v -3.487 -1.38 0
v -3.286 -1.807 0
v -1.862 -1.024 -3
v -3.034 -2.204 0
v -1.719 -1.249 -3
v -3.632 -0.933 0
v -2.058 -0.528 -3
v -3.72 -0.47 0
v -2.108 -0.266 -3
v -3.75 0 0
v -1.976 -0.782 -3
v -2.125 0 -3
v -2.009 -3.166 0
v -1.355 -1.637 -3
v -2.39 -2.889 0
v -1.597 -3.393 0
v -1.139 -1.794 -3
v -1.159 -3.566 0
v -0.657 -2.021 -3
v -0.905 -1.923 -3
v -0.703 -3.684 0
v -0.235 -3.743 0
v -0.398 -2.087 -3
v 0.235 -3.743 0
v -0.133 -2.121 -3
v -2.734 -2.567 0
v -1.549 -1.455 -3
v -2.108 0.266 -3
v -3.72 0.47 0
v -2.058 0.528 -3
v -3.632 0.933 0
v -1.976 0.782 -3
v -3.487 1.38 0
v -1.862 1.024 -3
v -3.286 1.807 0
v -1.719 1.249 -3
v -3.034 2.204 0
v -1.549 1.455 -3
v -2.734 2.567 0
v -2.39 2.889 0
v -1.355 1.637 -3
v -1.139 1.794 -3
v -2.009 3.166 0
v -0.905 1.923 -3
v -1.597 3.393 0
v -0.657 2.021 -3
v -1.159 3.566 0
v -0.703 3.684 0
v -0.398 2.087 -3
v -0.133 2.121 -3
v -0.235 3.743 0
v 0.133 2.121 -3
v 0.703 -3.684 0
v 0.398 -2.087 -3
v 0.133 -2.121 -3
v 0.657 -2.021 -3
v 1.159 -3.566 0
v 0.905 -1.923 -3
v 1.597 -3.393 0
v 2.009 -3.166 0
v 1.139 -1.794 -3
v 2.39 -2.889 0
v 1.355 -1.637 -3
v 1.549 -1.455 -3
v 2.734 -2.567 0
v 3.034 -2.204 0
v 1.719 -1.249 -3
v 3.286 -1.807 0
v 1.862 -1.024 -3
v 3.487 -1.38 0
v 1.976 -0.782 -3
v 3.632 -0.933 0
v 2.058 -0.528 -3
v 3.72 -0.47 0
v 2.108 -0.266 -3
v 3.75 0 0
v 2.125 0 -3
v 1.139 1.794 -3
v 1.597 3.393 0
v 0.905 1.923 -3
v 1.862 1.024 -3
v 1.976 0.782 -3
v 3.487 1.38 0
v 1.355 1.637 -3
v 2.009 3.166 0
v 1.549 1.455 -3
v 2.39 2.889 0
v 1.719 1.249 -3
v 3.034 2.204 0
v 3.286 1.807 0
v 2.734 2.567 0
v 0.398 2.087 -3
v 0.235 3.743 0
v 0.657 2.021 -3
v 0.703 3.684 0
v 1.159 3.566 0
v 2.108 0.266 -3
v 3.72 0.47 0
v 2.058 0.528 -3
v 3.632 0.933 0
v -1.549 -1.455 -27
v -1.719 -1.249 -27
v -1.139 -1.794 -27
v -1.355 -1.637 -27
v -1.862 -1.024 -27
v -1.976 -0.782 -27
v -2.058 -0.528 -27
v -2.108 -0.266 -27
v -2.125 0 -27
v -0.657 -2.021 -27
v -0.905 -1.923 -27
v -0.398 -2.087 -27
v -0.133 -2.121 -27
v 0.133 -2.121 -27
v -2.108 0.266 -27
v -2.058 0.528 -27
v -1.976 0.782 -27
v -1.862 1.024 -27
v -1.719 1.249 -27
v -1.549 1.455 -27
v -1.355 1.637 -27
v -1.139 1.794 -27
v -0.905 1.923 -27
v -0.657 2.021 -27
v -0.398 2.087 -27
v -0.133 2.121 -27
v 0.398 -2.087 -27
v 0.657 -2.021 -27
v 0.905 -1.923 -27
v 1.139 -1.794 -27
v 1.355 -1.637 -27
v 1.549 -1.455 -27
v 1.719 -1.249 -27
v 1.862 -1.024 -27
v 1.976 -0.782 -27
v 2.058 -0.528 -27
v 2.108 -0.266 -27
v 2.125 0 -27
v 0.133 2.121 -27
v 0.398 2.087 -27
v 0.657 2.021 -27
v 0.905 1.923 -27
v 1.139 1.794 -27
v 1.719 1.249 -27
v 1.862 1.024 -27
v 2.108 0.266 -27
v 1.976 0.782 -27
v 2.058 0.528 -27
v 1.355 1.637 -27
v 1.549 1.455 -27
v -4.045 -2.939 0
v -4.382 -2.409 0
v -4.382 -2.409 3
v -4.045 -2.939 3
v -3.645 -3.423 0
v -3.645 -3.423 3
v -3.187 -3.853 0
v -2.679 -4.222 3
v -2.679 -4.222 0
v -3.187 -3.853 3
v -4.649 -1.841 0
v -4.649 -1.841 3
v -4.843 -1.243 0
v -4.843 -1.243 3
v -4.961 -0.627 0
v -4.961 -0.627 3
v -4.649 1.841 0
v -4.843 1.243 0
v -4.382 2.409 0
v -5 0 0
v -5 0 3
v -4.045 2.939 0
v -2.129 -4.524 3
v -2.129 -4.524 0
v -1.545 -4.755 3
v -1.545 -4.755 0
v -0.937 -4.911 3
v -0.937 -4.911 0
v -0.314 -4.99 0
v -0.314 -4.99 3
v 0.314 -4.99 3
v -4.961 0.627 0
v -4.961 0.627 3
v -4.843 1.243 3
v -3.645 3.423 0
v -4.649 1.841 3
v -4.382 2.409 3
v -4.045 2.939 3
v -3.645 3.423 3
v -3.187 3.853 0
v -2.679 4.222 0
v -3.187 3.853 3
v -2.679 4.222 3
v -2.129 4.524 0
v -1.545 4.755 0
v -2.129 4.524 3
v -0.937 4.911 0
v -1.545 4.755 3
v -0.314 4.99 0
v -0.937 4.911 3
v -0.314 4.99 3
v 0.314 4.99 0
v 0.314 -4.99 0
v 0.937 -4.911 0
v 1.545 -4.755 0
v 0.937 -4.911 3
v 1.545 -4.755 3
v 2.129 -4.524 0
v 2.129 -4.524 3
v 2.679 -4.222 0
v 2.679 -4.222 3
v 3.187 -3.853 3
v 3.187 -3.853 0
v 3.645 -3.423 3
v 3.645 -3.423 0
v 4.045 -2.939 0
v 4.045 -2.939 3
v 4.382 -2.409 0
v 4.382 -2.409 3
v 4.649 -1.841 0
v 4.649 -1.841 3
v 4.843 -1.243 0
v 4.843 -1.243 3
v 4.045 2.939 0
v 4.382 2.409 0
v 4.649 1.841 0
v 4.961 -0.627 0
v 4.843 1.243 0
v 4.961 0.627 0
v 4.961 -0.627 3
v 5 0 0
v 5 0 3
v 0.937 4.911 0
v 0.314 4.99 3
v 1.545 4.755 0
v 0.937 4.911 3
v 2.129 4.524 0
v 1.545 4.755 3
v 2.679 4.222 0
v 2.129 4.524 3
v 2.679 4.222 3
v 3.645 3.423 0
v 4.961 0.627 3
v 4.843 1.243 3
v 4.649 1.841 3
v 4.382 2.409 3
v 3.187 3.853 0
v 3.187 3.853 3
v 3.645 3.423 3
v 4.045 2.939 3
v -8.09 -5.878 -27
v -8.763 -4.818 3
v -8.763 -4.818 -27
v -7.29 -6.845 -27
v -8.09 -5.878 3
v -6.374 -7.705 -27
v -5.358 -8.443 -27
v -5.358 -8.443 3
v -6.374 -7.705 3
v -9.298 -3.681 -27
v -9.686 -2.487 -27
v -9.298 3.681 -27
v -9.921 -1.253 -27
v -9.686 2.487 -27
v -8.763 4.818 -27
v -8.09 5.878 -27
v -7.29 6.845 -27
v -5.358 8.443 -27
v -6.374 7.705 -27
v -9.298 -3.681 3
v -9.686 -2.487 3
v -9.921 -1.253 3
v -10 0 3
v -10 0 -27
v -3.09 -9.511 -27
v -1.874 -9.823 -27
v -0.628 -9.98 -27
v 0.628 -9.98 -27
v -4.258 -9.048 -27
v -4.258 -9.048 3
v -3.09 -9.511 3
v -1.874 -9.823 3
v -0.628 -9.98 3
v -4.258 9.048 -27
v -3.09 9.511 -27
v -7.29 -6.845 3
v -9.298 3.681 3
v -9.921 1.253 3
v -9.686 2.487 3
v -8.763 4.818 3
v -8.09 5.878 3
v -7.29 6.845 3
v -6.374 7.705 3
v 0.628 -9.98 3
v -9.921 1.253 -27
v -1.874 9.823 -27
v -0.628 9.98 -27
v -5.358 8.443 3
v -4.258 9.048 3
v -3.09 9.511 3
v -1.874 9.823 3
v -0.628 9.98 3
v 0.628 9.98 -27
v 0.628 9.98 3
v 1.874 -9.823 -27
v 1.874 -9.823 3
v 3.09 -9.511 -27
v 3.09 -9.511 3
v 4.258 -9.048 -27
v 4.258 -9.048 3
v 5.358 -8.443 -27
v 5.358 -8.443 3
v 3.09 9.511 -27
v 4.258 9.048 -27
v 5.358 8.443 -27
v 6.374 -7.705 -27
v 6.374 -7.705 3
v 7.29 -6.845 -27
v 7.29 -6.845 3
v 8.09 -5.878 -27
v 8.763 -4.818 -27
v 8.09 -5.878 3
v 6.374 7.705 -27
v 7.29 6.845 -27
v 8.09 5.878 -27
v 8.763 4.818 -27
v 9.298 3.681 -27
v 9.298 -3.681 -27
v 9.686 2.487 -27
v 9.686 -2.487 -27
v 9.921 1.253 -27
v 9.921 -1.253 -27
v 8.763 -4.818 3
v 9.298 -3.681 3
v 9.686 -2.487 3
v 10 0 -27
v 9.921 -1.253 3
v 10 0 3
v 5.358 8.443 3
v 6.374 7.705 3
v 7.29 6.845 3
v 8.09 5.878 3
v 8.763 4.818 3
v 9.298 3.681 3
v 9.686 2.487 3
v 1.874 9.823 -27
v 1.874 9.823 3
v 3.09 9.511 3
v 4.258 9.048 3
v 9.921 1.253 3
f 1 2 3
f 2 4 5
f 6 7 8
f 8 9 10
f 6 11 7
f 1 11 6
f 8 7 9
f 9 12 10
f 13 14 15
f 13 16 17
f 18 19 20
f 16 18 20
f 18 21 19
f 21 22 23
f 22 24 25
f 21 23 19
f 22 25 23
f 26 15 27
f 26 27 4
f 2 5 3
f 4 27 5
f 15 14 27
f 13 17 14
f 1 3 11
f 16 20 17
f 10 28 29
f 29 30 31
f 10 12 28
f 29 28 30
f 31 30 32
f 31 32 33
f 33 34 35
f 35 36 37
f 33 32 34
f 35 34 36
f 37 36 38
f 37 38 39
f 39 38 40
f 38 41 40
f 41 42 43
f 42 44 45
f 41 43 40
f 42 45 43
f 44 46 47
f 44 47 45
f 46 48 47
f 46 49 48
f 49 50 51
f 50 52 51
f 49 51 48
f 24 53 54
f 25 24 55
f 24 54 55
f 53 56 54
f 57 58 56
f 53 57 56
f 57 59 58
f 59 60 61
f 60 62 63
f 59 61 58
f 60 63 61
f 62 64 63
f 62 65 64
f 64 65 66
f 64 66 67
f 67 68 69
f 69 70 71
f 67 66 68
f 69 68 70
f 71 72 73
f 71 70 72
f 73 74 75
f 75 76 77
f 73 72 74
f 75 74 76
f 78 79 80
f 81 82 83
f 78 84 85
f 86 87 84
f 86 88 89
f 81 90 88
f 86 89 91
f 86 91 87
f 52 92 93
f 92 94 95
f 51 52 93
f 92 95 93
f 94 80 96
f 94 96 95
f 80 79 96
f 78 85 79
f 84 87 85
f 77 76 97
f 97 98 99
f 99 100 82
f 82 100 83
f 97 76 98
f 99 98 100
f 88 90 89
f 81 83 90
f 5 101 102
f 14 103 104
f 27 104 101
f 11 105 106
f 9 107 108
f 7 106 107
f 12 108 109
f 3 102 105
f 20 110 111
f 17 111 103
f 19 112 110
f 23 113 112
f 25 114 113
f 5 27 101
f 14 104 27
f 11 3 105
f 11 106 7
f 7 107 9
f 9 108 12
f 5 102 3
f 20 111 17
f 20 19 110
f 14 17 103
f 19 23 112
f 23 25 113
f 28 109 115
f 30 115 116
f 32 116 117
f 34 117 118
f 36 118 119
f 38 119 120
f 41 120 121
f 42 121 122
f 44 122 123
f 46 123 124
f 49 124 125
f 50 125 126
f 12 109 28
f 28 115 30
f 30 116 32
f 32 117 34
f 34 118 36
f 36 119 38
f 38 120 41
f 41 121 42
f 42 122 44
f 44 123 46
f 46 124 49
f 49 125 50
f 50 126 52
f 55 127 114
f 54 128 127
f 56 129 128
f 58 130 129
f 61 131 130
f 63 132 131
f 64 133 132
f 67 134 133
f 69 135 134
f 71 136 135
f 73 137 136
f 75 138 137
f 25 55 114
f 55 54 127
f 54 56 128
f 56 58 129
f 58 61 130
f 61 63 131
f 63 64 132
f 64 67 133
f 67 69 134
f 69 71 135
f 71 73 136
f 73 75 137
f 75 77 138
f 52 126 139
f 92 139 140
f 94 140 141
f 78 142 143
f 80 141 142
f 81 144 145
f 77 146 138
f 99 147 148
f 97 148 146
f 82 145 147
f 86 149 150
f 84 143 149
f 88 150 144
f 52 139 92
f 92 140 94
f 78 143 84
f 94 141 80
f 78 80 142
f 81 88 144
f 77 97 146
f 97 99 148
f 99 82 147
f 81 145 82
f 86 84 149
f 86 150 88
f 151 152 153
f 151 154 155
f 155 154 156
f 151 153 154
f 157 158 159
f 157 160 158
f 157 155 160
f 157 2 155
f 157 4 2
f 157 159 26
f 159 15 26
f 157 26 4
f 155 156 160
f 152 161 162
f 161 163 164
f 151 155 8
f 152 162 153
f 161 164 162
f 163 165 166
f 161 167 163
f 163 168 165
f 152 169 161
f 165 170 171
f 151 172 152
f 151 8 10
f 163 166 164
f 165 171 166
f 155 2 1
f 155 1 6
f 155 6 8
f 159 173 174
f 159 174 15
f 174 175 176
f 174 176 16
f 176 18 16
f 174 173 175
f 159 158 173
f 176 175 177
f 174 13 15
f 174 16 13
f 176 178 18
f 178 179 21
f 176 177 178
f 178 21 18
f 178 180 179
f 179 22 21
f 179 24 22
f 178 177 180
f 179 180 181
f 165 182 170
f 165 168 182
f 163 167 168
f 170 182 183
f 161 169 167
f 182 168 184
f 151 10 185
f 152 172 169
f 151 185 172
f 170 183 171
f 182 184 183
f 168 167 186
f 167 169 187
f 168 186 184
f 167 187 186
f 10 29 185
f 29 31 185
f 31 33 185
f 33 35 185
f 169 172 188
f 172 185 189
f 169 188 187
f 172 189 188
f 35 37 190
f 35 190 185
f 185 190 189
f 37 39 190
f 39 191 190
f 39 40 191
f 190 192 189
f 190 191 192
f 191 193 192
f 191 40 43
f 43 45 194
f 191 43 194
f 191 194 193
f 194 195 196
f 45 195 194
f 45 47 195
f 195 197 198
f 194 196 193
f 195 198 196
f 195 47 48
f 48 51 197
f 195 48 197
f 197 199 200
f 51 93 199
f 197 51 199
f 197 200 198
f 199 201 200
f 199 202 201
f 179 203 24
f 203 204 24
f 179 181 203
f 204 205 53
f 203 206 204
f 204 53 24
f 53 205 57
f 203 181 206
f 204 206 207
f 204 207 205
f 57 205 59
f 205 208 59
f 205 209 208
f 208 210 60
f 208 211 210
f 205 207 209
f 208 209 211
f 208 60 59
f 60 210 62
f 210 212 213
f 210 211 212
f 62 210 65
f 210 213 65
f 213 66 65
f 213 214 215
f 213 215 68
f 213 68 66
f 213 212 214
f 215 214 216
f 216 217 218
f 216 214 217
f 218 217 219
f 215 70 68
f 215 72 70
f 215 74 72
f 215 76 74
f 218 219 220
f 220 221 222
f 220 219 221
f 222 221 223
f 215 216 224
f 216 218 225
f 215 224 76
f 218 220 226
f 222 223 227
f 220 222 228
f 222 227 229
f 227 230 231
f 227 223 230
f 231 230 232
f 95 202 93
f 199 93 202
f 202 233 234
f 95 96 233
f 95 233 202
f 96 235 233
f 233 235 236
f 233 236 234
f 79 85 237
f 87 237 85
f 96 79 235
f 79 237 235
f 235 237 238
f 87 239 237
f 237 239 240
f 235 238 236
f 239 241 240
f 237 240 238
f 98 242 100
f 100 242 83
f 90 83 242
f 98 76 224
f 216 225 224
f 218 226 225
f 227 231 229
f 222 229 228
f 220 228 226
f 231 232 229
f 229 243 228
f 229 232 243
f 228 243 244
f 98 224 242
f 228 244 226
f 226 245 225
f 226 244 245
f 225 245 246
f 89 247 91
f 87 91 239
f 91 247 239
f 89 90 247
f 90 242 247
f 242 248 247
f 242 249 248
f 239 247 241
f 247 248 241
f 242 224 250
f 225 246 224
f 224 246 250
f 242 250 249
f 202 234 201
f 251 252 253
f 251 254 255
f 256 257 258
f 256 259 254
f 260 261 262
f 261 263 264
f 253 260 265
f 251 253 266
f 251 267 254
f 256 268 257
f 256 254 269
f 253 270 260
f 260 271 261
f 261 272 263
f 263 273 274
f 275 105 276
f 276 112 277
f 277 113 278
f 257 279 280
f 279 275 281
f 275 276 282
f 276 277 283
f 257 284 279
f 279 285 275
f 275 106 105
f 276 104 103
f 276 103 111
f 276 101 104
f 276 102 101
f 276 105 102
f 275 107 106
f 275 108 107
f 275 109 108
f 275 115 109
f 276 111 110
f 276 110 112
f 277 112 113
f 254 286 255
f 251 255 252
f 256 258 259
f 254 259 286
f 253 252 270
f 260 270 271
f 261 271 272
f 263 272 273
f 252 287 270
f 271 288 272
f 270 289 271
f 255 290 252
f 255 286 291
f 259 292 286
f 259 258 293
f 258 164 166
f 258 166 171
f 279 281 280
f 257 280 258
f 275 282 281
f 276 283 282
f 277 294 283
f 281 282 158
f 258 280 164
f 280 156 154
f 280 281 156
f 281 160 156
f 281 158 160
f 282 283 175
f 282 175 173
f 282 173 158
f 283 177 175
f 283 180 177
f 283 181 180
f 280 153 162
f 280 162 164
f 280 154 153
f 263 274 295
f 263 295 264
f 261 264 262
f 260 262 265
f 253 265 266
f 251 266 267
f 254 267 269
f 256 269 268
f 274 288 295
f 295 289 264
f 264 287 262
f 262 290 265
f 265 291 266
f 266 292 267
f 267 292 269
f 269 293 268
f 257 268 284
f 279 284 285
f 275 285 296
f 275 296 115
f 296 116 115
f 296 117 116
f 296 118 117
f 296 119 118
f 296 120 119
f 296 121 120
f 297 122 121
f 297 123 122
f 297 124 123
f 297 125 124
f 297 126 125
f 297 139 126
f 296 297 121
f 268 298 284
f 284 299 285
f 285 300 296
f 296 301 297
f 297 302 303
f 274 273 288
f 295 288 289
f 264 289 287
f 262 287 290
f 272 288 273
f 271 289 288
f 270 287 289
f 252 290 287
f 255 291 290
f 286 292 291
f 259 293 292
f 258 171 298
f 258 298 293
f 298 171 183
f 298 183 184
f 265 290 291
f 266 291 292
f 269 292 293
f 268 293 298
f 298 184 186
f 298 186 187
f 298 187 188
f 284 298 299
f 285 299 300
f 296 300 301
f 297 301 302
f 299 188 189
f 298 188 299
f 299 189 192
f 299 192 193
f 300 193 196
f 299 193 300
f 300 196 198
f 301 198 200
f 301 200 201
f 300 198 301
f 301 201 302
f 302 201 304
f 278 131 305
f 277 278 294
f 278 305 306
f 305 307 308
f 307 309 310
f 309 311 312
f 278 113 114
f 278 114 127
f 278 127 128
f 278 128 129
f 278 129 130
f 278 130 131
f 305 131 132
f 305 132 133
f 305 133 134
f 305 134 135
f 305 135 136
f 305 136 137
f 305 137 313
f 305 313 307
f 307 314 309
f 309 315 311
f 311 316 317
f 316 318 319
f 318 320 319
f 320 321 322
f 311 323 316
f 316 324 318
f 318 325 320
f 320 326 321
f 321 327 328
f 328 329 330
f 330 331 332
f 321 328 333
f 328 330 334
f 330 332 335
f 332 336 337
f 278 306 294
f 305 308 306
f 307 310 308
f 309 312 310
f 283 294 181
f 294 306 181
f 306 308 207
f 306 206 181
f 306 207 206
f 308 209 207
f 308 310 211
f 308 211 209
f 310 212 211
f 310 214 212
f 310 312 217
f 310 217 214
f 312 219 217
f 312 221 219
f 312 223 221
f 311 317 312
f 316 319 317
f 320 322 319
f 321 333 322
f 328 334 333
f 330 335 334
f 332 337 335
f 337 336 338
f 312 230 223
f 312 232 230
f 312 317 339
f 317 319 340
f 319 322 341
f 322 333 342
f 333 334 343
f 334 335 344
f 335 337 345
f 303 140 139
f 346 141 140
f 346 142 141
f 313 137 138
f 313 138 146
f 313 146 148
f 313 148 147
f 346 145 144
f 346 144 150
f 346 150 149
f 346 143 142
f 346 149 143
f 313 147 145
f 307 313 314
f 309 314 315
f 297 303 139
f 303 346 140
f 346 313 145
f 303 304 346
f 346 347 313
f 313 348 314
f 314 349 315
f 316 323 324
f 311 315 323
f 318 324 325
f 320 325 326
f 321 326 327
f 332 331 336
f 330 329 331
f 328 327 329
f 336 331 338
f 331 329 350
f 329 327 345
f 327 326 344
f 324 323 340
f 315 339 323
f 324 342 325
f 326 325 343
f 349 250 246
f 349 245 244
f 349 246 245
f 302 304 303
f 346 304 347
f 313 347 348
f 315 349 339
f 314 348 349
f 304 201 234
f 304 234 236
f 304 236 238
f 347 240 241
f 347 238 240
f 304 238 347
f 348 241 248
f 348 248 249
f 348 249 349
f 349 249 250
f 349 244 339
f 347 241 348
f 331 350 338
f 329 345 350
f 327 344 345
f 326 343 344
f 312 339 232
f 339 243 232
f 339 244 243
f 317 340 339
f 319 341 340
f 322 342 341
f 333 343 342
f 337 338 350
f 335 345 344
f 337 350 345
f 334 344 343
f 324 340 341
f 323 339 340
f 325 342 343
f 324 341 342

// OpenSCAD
$fn = 50;


difference() {
	union() {
		translate(v = [0, 0, -27.0000000000]) {
			cylinder(h = 30, r = 10.0000000000);
		}
	}
	union() {
		translate(v = [0, 0, 0]) {
			rotate(a = [0, 0, 0]) {
				difference() {
					union() {
						translate(v = [0, 0, -30.0000000000]) {
							cylinder(h = 30, r = 2.0000000000);
						}
						translate(v = [0, 0, -3]) {
							cylinder(h = 3, r1 = 2.1250000000, r2 = 3.7500000000);
						}
						translate(v = [0, 0, -30.0000000000]) {
							cylinder(h = 30, r = 2.1250000000);
						}
						translate(v = [0, 0, -30.0000000000]) {
							cylinder(h = 30, r = 2.0000000000);
						}
					}
					union();
				}
			}
		}
		#cylinder(h = 3, r = 5.0000000000);
	}
}
